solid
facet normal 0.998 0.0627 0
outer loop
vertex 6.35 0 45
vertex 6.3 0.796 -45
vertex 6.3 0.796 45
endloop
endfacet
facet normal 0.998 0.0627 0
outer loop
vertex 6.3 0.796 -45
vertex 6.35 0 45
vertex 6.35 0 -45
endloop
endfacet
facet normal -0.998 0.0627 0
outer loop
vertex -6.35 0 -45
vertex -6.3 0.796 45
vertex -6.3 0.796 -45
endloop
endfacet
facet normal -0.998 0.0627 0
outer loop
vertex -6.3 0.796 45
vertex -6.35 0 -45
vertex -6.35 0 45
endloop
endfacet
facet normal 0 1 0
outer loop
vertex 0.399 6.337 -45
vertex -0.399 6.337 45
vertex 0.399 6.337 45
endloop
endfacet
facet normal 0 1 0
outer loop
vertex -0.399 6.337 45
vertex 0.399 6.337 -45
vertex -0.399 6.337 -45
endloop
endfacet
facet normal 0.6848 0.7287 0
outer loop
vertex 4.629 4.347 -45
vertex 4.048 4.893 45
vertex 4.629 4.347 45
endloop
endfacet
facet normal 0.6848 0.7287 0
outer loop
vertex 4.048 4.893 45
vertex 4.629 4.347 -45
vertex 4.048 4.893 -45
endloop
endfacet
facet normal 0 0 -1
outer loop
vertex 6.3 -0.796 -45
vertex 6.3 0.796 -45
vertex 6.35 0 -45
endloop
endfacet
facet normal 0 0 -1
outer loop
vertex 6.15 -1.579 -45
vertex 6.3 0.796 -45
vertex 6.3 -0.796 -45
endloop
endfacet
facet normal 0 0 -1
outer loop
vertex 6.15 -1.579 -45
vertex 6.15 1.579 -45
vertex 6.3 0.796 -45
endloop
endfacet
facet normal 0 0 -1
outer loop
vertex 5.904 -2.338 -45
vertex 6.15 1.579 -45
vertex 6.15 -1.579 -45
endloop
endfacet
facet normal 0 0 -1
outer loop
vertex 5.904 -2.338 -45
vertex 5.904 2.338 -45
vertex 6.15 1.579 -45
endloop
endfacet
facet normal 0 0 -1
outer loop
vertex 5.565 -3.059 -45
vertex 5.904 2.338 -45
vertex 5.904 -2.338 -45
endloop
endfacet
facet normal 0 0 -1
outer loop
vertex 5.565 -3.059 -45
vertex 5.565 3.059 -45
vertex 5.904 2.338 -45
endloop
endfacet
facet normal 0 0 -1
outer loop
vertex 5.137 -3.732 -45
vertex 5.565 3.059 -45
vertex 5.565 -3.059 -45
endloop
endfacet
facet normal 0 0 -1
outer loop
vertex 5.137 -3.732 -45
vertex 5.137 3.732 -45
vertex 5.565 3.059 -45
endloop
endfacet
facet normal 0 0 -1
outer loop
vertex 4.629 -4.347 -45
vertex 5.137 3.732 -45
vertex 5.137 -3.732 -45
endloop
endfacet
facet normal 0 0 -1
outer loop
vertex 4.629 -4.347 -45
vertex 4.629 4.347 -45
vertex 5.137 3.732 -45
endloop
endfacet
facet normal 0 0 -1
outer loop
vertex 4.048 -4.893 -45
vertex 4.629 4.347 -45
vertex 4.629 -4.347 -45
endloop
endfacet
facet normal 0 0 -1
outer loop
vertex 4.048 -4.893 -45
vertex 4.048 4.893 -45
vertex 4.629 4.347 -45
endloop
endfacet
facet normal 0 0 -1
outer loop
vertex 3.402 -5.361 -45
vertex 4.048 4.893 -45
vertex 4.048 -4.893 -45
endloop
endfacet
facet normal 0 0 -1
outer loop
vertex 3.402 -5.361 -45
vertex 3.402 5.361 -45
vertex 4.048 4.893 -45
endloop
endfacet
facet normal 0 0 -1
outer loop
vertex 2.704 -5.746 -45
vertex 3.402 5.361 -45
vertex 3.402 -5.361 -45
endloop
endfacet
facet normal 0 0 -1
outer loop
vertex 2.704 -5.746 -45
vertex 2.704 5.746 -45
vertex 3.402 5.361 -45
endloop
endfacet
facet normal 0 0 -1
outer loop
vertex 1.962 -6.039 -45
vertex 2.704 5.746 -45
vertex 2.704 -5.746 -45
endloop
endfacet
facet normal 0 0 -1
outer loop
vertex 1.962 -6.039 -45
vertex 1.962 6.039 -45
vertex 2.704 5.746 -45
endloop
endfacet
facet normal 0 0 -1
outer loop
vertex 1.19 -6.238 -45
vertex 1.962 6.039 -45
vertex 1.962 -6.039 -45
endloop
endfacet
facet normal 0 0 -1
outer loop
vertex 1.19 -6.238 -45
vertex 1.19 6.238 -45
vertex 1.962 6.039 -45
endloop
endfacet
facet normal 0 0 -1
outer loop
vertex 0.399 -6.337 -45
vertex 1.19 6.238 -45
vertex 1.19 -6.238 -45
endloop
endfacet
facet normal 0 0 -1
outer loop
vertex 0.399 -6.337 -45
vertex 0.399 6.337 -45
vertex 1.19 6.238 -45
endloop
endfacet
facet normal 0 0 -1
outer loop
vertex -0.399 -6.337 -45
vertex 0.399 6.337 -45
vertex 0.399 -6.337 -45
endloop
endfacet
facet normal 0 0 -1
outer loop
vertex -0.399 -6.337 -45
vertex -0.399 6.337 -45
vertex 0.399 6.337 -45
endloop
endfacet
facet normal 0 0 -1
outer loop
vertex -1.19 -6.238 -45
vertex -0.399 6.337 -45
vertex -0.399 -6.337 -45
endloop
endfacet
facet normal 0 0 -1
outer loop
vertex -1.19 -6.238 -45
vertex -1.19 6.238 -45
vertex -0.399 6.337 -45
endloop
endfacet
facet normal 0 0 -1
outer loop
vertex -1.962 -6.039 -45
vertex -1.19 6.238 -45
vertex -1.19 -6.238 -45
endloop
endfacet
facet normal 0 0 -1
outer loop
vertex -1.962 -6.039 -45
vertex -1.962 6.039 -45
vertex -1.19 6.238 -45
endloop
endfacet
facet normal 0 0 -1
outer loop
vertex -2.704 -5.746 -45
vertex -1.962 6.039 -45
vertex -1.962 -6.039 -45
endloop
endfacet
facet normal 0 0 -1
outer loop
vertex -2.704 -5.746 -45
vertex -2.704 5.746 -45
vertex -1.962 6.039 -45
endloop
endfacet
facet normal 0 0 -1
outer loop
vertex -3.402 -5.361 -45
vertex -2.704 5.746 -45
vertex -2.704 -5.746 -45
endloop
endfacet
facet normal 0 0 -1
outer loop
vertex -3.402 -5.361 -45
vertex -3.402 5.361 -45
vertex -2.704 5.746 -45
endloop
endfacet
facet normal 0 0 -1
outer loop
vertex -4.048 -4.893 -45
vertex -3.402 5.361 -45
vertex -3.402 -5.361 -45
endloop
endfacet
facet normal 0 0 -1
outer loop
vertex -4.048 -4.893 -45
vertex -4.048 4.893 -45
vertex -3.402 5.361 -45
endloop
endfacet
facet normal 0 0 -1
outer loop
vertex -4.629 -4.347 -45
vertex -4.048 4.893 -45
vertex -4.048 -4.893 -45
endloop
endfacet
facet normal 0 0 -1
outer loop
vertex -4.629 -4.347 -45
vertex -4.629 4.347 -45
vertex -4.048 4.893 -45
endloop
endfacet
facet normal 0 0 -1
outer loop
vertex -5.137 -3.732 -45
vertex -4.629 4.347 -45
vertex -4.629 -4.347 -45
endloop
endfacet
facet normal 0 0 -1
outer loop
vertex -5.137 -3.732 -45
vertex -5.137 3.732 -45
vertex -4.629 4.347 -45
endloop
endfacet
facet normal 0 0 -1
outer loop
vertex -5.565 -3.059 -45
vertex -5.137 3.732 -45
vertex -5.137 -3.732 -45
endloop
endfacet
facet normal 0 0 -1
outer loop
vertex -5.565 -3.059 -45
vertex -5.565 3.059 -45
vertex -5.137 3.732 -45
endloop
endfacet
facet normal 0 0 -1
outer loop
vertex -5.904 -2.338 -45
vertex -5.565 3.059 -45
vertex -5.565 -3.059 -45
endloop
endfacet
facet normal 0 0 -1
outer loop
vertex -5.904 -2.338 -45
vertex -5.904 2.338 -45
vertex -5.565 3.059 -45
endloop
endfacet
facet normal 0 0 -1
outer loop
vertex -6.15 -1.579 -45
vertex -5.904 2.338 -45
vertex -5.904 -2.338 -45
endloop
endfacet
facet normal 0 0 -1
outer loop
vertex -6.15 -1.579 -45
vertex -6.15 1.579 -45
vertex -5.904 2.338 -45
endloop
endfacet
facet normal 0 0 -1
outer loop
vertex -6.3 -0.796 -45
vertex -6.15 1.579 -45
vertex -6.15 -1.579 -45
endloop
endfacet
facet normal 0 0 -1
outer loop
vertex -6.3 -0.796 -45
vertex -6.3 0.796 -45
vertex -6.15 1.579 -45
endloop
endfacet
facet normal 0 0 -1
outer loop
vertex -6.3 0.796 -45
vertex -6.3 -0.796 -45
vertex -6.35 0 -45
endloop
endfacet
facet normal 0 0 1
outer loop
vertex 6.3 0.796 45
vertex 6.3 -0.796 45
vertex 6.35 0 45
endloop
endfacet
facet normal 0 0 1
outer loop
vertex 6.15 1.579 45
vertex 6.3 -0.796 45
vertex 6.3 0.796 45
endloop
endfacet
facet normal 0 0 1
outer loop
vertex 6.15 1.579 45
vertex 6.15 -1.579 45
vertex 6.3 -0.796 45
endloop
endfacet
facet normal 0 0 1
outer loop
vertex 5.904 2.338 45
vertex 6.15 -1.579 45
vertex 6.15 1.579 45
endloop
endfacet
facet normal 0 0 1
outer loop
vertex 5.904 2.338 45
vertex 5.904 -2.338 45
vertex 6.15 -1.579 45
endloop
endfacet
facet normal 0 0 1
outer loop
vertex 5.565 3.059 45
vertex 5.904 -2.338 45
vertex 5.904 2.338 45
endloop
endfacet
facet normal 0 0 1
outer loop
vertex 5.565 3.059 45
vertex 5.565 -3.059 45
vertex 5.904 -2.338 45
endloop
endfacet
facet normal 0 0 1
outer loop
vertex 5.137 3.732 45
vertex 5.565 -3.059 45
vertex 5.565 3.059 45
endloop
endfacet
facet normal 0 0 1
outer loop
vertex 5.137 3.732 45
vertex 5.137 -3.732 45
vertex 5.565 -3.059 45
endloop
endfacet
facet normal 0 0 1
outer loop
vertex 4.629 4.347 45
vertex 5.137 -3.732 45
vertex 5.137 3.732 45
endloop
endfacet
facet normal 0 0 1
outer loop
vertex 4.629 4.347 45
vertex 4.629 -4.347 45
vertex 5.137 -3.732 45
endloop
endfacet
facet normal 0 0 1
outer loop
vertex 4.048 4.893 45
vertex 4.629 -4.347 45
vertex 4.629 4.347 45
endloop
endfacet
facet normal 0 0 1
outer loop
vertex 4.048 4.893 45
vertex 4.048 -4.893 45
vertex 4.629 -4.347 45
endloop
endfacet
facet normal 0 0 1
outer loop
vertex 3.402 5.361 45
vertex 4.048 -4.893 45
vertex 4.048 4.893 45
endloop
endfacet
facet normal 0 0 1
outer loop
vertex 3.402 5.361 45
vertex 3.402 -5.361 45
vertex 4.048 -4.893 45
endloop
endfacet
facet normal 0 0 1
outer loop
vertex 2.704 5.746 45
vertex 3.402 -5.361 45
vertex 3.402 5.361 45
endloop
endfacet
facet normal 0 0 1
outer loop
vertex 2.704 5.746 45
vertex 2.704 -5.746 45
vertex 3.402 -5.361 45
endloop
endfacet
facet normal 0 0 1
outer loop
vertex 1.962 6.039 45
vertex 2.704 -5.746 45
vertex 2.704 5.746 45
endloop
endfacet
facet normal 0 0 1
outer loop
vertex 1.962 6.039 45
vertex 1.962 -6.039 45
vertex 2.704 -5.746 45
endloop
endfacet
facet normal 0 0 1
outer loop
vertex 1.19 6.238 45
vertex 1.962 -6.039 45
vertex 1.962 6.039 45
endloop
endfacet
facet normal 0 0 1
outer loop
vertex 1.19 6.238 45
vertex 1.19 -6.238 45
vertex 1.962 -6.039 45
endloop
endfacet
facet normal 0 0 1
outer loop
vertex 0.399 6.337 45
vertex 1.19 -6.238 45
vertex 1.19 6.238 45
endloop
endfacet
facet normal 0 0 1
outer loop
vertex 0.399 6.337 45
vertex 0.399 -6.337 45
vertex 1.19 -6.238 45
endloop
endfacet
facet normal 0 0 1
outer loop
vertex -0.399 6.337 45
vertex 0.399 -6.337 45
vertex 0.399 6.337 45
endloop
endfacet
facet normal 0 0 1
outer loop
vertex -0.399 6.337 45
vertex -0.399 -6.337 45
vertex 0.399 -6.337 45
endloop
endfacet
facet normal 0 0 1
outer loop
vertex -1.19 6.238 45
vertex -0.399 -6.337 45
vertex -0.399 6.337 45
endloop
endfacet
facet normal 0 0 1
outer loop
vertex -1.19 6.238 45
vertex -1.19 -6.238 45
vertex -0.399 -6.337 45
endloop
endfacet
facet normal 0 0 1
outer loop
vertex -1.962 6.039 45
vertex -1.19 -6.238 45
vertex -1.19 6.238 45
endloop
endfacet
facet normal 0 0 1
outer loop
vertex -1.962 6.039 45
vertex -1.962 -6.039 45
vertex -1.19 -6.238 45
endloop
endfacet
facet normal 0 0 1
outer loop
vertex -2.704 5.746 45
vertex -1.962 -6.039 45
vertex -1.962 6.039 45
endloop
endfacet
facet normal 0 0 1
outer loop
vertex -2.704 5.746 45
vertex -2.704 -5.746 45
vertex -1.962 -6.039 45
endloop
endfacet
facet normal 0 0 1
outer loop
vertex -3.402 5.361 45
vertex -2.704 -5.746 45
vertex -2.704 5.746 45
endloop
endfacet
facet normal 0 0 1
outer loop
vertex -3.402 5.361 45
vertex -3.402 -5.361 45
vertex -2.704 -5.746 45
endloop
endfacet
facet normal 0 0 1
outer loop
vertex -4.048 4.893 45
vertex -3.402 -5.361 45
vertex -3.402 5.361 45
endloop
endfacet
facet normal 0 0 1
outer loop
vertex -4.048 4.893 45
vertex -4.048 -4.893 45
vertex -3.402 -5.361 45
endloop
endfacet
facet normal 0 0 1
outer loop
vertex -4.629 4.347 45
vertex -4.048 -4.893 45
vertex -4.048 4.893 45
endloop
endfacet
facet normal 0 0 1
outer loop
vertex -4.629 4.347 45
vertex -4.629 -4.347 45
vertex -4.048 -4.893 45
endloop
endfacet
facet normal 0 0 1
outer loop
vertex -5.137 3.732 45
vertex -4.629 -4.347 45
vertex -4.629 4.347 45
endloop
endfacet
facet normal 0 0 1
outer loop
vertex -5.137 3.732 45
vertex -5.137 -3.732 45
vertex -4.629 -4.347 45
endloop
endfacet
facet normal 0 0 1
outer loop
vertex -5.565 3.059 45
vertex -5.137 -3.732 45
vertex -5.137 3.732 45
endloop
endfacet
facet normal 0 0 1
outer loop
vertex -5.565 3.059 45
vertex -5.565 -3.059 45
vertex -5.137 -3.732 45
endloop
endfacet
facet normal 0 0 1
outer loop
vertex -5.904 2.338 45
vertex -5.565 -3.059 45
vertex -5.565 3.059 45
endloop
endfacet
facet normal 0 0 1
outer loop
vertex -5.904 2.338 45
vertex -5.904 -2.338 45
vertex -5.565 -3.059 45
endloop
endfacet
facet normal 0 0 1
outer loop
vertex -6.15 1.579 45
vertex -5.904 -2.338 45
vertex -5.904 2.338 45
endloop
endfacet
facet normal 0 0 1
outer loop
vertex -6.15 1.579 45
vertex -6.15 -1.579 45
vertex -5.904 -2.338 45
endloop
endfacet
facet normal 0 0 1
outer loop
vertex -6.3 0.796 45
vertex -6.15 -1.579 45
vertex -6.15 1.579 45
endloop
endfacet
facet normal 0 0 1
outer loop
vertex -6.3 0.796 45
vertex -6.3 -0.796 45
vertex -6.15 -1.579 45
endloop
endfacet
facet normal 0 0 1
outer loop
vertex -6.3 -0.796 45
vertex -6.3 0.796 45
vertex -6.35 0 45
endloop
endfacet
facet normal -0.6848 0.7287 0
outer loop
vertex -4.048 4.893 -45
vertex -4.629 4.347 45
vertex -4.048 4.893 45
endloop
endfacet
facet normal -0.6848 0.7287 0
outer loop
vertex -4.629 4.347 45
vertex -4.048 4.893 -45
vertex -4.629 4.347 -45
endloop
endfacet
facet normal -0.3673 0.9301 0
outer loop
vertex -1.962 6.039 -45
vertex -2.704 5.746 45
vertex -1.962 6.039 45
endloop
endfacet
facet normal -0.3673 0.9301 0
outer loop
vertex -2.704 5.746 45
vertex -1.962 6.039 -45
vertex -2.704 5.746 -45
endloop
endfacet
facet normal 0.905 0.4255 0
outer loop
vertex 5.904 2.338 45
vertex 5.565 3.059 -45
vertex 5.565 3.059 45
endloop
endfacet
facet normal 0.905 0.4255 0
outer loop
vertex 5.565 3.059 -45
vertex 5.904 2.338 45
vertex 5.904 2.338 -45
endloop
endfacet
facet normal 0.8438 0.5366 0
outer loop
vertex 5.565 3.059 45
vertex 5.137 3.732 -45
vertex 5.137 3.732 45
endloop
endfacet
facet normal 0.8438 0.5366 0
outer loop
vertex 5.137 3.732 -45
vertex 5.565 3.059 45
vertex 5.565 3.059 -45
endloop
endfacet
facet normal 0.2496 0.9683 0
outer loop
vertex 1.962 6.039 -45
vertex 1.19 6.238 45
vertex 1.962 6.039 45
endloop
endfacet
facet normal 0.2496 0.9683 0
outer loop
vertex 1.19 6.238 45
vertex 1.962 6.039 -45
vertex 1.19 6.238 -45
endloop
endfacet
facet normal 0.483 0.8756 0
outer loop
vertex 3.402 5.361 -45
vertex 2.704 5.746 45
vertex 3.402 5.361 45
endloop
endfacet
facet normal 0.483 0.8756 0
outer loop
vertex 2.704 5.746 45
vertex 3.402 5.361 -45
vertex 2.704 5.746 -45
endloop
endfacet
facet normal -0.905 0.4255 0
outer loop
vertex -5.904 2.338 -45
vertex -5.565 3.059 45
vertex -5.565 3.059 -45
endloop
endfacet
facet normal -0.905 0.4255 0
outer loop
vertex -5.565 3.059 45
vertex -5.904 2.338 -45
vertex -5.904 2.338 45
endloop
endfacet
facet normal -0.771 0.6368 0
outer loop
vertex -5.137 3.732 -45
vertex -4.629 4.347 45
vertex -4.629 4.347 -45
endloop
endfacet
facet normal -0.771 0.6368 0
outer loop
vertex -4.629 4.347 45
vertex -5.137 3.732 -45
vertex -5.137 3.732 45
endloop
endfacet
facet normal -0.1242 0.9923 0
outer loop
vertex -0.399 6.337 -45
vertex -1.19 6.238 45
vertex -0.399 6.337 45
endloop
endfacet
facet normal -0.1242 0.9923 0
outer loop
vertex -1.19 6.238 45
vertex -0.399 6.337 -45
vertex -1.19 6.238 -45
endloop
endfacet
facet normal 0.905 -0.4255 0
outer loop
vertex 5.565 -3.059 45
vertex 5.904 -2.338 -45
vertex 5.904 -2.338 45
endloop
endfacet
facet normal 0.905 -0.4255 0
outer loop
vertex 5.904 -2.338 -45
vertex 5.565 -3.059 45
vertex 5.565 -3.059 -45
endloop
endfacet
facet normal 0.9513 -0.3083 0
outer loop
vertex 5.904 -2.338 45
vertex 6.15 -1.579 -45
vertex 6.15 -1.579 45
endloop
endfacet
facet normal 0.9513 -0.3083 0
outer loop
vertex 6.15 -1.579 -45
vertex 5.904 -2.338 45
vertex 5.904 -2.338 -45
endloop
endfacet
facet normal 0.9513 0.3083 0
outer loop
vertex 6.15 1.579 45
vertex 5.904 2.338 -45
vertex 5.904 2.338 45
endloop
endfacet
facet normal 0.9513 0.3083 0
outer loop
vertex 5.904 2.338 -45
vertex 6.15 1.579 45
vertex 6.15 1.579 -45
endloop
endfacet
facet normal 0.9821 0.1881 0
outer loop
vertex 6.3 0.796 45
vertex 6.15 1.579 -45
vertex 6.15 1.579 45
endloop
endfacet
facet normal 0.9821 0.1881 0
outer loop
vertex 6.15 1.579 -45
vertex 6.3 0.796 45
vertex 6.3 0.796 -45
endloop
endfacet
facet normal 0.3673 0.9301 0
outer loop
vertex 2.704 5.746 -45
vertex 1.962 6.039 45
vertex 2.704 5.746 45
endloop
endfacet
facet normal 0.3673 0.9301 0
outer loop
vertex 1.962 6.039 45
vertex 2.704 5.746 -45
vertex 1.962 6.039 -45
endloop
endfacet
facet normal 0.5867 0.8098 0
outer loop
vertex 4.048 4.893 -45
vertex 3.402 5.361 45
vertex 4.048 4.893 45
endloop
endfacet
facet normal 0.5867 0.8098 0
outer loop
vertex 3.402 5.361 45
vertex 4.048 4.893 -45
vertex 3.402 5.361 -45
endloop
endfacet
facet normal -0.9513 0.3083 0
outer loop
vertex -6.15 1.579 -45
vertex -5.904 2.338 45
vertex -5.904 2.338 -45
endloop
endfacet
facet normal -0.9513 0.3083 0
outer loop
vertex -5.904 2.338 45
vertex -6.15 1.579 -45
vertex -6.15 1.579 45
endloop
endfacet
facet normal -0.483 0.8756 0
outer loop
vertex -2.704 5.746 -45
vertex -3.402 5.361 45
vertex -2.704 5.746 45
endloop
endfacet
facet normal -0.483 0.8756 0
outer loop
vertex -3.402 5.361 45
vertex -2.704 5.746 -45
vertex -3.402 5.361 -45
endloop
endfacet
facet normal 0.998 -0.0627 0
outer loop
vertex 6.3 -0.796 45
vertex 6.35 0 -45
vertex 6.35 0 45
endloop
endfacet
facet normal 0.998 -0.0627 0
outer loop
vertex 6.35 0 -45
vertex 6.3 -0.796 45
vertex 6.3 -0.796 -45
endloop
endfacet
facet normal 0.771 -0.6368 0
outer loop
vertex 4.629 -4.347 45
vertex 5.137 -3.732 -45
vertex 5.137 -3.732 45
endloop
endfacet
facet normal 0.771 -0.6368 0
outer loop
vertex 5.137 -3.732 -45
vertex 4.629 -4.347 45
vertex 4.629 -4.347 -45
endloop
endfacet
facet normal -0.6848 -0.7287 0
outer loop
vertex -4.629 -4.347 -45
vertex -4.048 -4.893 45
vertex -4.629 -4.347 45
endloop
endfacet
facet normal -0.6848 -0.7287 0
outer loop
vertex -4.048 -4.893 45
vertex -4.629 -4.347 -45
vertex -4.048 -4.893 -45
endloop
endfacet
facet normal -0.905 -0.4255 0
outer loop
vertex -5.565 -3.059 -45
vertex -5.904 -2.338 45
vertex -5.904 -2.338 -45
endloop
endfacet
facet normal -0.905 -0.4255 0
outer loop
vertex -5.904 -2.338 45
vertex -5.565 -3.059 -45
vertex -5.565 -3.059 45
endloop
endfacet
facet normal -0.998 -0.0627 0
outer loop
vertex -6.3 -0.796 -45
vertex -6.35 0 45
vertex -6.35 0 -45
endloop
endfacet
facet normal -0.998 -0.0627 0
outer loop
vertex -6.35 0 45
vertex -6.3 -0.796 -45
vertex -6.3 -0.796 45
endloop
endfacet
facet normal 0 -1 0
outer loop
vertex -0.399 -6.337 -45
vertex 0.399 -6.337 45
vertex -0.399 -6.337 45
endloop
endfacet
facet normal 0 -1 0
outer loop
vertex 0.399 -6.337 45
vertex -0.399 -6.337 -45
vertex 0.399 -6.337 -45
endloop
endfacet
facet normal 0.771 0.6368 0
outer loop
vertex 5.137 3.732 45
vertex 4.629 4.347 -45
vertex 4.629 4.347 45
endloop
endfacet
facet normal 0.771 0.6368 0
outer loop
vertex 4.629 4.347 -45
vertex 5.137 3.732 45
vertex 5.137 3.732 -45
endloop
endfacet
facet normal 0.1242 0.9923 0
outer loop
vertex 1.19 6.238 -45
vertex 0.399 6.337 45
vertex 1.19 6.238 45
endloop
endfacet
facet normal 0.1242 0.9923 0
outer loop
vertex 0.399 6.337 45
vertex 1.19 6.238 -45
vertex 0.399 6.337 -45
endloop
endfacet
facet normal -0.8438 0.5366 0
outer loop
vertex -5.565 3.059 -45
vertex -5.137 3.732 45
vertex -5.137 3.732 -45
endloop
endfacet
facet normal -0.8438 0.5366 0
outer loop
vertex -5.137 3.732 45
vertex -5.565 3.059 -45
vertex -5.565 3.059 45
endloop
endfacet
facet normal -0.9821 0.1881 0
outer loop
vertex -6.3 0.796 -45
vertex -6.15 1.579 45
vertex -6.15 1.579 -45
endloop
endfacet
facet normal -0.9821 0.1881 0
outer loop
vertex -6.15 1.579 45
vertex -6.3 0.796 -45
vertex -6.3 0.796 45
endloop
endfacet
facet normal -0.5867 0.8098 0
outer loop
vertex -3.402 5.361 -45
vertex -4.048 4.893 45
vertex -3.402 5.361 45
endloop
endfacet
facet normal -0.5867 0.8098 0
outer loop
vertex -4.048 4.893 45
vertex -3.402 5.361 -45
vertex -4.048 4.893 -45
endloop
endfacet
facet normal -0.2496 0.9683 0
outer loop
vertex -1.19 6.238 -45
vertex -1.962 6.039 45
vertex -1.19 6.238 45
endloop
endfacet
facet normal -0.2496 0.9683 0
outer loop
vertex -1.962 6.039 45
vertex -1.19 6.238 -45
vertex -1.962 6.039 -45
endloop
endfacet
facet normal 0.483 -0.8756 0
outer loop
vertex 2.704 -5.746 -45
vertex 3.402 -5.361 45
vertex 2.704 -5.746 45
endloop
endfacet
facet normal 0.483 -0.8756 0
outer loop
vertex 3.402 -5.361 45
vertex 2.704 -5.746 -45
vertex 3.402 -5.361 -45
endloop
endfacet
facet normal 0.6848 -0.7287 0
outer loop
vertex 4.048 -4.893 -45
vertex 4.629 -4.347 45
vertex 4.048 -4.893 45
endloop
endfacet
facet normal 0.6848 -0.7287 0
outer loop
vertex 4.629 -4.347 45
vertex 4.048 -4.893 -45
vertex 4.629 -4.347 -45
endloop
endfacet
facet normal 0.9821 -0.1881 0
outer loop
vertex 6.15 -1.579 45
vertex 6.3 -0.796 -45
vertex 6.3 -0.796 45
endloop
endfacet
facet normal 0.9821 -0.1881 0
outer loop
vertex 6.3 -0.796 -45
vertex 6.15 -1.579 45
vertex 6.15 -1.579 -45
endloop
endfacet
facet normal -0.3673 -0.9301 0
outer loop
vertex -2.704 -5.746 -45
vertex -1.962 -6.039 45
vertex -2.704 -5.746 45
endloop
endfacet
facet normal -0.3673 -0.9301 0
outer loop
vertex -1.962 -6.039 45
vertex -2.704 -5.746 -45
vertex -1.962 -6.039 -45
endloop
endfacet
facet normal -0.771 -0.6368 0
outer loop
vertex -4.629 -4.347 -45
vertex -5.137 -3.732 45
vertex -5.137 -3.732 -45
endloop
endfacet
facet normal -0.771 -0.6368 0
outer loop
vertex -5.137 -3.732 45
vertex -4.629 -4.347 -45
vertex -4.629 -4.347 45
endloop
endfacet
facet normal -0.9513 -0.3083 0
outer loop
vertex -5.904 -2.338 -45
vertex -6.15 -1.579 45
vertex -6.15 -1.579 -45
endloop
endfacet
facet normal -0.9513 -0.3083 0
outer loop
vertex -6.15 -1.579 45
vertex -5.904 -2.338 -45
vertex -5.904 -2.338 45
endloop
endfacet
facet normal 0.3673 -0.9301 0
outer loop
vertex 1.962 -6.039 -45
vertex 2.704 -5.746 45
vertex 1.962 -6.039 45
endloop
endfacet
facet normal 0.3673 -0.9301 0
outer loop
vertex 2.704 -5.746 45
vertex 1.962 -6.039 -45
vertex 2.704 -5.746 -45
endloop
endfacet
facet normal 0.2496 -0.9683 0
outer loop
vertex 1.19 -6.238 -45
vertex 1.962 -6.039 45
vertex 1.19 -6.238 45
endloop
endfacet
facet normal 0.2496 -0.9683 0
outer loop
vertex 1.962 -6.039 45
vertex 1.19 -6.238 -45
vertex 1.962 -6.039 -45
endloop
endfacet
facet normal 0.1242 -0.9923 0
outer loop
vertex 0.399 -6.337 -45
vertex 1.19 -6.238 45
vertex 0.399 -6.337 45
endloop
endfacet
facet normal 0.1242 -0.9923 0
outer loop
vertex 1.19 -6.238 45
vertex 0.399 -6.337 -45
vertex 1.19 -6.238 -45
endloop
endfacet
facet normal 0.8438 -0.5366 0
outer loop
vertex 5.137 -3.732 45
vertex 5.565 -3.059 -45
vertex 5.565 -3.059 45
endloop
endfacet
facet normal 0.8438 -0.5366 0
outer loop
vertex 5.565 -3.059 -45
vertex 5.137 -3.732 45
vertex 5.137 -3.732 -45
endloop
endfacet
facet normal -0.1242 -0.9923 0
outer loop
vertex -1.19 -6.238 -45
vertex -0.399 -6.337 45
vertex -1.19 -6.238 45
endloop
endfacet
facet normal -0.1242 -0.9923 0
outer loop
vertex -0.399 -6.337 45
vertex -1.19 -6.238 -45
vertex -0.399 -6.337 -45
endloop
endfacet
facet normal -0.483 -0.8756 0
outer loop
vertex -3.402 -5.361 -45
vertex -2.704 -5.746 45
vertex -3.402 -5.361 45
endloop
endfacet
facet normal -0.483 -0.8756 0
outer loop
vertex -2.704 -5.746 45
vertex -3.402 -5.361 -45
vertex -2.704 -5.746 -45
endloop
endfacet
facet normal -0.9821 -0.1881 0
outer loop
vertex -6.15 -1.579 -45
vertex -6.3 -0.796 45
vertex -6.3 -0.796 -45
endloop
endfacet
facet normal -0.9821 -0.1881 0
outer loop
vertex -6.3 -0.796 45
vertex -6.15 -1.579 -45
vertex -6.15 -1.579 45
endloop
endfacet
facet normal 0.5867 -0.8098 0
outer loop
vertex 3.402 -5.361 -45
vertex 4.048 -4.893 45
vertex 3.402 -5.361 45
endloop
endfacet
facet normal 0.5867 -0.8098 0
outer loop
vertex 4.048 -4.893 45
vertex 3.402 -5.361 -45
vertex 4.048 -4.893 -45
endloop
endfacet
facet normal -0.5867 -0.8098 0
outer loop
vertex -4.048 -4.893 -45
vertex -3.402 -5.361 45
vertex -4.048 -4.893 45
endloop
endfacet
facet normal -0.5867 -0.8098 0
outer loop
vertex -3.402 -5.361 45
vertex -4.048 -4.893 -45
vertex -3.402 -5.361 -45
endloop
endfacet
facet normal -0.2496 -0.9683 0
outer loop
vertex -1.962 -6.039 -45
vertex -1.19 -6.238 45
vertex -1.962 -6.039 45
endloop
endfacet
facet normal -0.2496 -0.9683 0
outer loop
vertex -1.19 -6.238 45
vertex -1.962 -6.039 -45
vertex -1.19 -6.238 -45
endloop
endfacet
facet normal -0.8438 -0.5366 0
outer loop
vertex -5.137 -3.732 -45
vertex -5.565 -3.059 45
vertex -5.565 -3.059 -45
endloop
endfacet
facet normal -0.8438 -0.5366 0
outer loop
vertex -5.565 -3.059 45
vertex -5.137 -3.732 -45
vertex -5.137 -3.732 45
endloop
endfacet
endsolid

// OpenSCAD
$fn = 50;


difference() {
	union() {
		translate(v = [0, 0, -45.0000000000]) {
			cylinder(h = 90, r = 6.3500000000);
		}
	}
	union() {
		translate(v = [0, 0, -100.0000000000]) {
			cylinder(h = 200, r = 0);
		}
	}
}
